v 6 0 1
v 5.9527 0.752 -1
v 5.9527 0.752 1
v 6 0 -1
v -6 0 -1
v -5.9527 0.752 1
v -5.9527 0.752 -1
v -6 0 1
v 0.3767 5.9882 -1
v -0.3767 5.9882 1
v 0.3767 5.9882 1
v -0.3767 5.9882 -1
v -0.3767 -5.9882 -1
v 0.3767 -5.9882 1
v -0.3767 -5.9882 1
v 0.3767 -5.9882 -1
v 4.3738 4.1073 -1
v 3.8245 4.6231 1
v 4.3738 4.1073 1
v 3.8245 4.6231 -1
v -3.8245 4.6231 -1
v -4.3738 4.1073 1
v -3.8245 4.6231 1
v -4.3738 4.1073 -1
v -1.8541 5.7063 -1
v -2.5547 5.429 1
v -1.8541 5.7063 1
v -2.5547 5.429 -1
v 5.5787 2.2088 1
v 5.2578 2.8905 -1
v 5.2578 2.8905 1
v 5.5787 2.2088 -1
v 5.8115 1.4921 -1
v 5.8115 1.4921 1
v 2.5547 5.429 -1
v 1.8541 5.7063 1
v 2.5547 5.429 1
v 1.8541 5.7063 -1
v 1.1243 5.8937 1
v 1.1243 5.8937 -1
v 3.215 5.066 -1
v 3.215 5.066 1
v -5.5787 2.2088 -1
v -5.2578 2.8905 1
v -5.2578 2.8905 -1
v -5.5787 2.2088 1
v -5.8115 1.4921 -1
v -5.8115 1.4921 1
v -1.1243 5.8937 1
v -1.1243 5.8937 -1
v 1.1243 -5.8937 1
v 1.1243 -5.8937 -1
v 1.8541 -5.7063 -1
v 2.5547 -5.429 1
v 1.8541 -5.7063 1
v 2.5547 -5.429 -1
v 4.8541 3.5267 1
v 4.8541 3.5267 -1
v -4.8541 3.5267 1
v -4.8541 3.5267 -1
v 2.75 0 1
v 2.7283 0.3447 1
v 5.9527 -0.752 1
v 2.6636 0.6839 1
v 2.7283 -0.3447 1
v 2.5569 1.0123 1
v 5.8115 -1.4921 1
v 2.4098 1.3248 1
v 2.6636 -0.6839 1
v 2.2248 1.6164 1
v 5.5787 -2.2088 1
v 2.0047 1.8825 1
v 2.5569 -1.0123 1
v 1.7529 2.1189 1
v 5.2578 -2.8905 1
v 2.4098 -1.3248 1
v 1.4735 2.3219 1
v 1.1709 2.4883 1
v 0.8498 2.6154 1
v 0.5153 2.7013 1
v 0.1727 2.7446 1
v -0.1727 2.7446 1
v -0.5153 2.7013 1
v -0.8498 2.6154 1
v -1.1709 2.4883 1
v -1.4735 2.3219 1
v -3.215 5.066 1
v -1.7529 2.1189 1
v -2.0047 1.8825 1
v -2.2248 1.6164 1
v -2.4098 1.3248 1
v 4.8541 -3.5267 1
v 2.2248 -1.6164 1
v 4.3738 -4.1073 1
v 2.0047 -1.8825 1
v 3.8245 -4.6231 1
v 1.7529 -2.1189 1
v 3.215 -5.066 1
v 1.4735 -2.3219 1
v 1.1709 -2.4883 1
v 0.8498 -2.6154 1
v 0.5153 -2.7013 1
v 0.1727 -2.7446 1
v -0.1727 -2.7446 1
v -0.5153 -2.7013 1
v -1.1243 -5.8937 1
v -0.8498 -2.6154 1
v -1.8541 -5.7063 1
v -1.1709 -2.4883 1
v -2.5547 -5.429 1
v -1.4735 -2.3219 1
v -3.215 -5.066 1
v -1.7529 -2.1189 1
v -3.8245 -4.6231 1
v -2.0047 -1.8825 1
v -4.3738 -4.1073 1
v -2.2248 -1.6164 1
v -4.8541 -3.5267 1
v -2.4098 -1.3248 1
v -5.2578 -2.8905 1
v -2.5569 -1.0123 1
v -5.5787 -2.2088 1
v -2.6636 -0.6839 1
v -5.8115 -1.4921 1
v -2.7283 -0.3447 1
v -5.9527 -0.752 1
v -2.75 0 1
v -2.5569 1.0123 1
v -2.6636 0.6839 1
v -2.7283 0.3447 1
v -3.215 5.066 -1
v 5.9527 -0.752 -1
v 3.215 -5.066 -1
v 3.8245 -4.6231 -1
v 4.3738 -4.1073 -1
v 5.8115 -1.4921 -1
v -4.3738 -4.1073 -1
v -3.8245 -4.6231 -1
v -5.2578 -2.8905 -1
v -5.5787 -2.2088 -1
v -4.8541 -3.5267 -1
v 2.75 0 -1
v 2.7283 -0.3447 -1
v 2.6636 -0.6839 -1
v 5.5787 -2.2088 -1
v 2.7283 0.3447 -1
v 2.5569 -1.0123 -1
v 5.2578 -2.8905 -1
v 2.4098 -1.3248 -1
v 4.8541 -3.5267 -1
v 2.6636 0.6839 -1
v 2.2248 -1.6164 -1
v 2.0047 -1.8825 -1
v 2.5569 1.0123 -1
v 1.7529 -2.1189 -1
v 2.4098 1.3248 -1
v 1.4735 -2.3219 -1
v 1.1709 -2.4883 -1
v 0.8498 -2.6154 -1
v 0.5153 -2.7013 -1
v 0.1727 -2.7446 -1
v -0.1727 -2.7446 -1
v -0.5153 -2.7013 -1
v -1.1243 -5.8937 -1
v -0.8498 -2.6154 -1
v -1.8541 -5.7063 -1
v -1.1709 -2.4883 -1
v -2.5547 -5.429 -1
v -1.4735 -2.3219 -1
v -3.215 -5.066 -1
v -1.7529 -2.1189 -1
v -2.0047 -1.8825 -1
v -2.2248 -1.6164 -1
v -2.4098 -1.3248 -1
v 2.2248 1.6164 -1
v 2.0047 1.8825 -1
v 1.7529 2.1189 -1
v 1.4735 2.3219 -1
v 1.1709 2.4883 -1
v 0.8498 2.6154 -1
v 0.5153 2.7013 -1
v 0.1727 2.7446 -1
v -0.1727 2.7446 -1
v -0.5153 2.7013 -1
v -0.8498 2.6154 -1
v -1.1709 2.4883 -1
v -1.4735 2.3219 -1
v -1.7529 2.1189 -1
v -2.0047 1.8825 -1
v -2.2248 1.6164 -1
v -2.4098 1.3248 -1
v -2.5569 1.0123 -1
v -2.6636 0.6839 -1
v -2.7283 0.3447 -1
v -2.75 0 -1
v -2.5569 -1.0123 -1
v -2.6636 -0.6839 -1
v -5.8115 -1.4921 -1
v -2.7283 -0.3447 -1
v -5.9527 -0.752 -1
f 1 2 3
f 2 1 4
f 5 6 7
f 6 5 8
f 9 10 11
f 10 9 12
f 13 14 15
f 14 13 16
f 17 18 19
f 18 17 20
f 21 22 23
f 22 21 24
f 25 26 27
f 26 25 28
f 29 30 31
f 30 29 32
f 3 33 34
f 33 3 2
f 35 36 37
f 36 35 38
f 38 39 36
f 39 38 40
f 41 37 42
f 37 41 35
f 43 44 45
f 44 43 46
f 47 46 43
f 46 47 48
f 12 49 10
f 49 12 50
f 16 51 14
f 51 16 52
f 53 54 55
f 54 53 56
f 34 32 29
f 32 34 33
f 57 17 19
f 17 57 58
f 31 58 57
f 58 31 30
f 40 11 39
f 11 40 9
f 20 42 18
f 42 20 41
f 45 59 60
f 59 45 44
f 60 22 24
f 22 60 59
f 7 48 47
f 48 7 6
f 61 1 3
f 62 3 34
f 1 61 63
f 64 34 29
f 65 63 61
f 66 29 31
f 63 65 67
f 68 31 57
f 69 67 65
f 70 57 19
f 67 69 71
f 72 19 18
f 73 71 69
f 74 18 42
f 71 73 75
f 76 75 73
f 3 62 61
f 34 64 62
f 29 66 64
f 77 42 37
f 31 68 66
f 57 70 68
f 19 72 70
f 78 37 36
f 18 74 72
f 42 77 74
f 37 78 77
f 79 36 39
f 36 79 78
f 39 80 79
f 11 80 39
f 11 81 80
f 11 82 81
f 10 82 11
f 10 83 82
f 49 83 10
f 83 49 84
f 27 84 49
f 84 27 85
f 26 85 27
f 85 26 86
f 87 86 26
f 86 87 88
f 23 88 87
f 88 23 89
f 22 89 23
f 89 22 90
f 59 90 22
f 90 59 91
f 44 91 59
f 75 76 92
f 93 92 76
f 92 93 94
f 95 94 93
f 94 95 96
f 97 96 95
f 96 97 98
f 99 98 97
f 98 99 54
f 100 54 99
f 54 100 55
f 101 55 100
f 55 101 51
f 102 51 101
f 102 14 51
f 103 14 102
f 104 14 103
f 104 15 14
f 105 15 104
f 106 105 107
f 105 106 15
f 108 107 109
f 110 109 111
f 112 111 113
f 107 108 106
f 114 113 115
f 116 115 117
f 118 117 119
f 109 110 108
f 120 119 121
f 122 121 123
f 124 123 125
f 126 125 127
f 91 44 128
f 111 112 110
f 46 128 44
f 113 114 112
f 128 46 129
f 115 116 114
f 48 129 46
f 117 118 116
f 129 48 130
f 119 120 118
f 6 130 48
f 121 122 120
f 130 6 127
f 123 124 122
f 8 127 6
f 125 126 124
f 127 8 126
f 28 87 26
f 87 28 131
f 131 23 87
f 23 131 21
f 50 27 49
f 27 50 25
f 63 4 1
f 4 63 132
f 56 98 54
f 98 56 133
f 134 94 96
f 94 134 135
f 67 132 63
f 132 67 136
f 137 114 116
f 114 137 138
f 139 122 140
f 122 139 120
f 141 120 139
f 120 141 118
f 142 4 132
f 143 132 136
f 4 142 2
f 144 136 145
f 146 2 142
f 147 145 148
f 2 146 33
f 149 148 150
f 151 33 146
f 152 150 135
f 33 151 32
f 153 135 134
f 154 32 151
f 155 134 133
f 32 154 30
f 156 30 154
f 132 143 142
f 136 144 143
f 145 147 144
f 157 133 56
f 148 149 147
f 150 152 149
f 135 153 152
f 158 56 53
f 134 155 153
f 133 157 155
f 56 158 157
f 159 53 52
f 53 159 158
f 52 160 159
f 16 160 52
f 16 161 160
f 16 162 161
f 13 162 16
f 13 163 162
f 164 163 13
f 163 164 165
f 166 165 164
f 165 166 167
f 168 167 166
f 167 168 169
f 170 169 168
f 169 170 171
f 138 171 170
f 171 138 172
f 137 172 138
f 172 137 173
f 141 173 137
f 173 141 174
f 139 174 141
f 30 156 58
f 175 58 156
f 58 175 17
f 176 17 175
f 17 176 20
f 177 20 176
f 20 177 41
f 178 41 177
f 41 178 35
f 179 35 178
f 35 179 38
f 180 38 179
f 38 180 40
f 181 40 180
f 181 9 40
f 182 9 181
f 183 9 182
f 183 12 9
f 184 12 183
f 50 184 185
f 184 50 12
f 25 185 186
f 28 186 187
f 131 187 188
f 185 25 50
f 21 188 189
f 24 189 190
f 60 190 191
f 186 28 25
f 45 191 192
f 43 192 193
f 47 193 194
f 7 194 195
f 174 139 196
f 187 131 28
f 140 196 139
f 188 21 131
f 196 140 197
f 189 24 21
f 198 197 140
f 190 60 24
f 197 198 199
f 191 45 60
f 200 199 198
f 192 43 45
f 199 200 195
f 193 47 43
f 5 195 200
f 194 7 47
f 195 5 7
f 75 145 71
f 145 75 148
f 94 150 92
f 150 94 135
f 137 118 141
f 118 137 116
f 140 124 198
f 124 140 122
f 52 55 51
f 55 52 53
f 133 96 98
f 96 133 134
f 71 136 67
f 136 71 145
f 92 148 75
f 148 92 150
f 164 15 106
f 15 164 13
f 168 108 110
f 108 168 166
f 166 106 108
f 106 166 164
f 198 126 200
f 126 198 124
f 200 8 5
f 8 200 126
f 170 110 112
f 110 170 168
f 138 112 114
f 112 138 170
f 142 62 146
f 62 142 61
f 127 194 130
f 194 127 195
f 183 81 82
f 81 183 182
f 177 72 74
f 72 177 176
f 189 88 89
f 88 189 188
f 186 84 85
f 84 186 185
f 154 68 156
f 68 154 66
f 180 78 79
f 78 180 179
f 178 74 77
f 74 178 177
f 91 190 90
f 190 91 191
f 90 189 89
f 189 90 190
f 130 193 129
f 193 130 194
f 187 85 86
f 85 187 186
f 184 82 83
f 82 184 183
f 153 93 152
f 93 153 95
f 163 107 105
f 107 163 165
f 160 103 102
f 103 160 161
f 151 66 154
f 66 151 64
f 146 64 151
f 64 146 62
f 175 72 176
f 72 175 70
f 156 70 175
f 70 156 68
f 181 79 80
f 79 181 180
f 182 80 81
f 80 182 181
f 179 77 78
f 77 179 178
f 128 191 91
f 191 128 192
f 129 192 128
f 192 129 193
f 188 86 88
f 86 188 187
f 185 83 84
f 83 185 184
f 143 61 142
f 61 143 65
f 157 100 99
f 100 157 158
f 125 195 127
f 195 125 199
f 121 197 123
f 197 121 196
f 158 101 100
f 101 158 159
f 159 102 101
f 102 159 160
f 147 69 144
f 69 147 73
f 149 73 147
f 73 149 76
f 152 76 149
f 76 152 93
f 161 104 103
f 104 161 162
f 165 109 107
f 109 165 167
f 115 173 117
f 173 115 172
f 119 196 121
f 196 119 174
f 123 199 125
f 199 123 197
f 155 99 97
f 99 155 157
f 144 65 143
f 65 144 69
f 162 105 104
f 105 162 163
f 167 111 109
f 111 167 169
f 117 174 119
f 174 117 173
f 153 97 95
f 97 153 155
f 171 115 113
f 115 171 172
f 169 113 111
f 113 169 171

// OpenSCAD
$fn = 50;


difference() {
	union() {
		translate(v = [0, 0, -1.0000000000]) {
			cylinder(h = 2, r = 6.0000000000);
		}
	}
	union() {
		translate(v = [0, 0, -100.0000000000]) {
			cylinder(h = 200, r = 2.7500000000);
		}
	}
}
